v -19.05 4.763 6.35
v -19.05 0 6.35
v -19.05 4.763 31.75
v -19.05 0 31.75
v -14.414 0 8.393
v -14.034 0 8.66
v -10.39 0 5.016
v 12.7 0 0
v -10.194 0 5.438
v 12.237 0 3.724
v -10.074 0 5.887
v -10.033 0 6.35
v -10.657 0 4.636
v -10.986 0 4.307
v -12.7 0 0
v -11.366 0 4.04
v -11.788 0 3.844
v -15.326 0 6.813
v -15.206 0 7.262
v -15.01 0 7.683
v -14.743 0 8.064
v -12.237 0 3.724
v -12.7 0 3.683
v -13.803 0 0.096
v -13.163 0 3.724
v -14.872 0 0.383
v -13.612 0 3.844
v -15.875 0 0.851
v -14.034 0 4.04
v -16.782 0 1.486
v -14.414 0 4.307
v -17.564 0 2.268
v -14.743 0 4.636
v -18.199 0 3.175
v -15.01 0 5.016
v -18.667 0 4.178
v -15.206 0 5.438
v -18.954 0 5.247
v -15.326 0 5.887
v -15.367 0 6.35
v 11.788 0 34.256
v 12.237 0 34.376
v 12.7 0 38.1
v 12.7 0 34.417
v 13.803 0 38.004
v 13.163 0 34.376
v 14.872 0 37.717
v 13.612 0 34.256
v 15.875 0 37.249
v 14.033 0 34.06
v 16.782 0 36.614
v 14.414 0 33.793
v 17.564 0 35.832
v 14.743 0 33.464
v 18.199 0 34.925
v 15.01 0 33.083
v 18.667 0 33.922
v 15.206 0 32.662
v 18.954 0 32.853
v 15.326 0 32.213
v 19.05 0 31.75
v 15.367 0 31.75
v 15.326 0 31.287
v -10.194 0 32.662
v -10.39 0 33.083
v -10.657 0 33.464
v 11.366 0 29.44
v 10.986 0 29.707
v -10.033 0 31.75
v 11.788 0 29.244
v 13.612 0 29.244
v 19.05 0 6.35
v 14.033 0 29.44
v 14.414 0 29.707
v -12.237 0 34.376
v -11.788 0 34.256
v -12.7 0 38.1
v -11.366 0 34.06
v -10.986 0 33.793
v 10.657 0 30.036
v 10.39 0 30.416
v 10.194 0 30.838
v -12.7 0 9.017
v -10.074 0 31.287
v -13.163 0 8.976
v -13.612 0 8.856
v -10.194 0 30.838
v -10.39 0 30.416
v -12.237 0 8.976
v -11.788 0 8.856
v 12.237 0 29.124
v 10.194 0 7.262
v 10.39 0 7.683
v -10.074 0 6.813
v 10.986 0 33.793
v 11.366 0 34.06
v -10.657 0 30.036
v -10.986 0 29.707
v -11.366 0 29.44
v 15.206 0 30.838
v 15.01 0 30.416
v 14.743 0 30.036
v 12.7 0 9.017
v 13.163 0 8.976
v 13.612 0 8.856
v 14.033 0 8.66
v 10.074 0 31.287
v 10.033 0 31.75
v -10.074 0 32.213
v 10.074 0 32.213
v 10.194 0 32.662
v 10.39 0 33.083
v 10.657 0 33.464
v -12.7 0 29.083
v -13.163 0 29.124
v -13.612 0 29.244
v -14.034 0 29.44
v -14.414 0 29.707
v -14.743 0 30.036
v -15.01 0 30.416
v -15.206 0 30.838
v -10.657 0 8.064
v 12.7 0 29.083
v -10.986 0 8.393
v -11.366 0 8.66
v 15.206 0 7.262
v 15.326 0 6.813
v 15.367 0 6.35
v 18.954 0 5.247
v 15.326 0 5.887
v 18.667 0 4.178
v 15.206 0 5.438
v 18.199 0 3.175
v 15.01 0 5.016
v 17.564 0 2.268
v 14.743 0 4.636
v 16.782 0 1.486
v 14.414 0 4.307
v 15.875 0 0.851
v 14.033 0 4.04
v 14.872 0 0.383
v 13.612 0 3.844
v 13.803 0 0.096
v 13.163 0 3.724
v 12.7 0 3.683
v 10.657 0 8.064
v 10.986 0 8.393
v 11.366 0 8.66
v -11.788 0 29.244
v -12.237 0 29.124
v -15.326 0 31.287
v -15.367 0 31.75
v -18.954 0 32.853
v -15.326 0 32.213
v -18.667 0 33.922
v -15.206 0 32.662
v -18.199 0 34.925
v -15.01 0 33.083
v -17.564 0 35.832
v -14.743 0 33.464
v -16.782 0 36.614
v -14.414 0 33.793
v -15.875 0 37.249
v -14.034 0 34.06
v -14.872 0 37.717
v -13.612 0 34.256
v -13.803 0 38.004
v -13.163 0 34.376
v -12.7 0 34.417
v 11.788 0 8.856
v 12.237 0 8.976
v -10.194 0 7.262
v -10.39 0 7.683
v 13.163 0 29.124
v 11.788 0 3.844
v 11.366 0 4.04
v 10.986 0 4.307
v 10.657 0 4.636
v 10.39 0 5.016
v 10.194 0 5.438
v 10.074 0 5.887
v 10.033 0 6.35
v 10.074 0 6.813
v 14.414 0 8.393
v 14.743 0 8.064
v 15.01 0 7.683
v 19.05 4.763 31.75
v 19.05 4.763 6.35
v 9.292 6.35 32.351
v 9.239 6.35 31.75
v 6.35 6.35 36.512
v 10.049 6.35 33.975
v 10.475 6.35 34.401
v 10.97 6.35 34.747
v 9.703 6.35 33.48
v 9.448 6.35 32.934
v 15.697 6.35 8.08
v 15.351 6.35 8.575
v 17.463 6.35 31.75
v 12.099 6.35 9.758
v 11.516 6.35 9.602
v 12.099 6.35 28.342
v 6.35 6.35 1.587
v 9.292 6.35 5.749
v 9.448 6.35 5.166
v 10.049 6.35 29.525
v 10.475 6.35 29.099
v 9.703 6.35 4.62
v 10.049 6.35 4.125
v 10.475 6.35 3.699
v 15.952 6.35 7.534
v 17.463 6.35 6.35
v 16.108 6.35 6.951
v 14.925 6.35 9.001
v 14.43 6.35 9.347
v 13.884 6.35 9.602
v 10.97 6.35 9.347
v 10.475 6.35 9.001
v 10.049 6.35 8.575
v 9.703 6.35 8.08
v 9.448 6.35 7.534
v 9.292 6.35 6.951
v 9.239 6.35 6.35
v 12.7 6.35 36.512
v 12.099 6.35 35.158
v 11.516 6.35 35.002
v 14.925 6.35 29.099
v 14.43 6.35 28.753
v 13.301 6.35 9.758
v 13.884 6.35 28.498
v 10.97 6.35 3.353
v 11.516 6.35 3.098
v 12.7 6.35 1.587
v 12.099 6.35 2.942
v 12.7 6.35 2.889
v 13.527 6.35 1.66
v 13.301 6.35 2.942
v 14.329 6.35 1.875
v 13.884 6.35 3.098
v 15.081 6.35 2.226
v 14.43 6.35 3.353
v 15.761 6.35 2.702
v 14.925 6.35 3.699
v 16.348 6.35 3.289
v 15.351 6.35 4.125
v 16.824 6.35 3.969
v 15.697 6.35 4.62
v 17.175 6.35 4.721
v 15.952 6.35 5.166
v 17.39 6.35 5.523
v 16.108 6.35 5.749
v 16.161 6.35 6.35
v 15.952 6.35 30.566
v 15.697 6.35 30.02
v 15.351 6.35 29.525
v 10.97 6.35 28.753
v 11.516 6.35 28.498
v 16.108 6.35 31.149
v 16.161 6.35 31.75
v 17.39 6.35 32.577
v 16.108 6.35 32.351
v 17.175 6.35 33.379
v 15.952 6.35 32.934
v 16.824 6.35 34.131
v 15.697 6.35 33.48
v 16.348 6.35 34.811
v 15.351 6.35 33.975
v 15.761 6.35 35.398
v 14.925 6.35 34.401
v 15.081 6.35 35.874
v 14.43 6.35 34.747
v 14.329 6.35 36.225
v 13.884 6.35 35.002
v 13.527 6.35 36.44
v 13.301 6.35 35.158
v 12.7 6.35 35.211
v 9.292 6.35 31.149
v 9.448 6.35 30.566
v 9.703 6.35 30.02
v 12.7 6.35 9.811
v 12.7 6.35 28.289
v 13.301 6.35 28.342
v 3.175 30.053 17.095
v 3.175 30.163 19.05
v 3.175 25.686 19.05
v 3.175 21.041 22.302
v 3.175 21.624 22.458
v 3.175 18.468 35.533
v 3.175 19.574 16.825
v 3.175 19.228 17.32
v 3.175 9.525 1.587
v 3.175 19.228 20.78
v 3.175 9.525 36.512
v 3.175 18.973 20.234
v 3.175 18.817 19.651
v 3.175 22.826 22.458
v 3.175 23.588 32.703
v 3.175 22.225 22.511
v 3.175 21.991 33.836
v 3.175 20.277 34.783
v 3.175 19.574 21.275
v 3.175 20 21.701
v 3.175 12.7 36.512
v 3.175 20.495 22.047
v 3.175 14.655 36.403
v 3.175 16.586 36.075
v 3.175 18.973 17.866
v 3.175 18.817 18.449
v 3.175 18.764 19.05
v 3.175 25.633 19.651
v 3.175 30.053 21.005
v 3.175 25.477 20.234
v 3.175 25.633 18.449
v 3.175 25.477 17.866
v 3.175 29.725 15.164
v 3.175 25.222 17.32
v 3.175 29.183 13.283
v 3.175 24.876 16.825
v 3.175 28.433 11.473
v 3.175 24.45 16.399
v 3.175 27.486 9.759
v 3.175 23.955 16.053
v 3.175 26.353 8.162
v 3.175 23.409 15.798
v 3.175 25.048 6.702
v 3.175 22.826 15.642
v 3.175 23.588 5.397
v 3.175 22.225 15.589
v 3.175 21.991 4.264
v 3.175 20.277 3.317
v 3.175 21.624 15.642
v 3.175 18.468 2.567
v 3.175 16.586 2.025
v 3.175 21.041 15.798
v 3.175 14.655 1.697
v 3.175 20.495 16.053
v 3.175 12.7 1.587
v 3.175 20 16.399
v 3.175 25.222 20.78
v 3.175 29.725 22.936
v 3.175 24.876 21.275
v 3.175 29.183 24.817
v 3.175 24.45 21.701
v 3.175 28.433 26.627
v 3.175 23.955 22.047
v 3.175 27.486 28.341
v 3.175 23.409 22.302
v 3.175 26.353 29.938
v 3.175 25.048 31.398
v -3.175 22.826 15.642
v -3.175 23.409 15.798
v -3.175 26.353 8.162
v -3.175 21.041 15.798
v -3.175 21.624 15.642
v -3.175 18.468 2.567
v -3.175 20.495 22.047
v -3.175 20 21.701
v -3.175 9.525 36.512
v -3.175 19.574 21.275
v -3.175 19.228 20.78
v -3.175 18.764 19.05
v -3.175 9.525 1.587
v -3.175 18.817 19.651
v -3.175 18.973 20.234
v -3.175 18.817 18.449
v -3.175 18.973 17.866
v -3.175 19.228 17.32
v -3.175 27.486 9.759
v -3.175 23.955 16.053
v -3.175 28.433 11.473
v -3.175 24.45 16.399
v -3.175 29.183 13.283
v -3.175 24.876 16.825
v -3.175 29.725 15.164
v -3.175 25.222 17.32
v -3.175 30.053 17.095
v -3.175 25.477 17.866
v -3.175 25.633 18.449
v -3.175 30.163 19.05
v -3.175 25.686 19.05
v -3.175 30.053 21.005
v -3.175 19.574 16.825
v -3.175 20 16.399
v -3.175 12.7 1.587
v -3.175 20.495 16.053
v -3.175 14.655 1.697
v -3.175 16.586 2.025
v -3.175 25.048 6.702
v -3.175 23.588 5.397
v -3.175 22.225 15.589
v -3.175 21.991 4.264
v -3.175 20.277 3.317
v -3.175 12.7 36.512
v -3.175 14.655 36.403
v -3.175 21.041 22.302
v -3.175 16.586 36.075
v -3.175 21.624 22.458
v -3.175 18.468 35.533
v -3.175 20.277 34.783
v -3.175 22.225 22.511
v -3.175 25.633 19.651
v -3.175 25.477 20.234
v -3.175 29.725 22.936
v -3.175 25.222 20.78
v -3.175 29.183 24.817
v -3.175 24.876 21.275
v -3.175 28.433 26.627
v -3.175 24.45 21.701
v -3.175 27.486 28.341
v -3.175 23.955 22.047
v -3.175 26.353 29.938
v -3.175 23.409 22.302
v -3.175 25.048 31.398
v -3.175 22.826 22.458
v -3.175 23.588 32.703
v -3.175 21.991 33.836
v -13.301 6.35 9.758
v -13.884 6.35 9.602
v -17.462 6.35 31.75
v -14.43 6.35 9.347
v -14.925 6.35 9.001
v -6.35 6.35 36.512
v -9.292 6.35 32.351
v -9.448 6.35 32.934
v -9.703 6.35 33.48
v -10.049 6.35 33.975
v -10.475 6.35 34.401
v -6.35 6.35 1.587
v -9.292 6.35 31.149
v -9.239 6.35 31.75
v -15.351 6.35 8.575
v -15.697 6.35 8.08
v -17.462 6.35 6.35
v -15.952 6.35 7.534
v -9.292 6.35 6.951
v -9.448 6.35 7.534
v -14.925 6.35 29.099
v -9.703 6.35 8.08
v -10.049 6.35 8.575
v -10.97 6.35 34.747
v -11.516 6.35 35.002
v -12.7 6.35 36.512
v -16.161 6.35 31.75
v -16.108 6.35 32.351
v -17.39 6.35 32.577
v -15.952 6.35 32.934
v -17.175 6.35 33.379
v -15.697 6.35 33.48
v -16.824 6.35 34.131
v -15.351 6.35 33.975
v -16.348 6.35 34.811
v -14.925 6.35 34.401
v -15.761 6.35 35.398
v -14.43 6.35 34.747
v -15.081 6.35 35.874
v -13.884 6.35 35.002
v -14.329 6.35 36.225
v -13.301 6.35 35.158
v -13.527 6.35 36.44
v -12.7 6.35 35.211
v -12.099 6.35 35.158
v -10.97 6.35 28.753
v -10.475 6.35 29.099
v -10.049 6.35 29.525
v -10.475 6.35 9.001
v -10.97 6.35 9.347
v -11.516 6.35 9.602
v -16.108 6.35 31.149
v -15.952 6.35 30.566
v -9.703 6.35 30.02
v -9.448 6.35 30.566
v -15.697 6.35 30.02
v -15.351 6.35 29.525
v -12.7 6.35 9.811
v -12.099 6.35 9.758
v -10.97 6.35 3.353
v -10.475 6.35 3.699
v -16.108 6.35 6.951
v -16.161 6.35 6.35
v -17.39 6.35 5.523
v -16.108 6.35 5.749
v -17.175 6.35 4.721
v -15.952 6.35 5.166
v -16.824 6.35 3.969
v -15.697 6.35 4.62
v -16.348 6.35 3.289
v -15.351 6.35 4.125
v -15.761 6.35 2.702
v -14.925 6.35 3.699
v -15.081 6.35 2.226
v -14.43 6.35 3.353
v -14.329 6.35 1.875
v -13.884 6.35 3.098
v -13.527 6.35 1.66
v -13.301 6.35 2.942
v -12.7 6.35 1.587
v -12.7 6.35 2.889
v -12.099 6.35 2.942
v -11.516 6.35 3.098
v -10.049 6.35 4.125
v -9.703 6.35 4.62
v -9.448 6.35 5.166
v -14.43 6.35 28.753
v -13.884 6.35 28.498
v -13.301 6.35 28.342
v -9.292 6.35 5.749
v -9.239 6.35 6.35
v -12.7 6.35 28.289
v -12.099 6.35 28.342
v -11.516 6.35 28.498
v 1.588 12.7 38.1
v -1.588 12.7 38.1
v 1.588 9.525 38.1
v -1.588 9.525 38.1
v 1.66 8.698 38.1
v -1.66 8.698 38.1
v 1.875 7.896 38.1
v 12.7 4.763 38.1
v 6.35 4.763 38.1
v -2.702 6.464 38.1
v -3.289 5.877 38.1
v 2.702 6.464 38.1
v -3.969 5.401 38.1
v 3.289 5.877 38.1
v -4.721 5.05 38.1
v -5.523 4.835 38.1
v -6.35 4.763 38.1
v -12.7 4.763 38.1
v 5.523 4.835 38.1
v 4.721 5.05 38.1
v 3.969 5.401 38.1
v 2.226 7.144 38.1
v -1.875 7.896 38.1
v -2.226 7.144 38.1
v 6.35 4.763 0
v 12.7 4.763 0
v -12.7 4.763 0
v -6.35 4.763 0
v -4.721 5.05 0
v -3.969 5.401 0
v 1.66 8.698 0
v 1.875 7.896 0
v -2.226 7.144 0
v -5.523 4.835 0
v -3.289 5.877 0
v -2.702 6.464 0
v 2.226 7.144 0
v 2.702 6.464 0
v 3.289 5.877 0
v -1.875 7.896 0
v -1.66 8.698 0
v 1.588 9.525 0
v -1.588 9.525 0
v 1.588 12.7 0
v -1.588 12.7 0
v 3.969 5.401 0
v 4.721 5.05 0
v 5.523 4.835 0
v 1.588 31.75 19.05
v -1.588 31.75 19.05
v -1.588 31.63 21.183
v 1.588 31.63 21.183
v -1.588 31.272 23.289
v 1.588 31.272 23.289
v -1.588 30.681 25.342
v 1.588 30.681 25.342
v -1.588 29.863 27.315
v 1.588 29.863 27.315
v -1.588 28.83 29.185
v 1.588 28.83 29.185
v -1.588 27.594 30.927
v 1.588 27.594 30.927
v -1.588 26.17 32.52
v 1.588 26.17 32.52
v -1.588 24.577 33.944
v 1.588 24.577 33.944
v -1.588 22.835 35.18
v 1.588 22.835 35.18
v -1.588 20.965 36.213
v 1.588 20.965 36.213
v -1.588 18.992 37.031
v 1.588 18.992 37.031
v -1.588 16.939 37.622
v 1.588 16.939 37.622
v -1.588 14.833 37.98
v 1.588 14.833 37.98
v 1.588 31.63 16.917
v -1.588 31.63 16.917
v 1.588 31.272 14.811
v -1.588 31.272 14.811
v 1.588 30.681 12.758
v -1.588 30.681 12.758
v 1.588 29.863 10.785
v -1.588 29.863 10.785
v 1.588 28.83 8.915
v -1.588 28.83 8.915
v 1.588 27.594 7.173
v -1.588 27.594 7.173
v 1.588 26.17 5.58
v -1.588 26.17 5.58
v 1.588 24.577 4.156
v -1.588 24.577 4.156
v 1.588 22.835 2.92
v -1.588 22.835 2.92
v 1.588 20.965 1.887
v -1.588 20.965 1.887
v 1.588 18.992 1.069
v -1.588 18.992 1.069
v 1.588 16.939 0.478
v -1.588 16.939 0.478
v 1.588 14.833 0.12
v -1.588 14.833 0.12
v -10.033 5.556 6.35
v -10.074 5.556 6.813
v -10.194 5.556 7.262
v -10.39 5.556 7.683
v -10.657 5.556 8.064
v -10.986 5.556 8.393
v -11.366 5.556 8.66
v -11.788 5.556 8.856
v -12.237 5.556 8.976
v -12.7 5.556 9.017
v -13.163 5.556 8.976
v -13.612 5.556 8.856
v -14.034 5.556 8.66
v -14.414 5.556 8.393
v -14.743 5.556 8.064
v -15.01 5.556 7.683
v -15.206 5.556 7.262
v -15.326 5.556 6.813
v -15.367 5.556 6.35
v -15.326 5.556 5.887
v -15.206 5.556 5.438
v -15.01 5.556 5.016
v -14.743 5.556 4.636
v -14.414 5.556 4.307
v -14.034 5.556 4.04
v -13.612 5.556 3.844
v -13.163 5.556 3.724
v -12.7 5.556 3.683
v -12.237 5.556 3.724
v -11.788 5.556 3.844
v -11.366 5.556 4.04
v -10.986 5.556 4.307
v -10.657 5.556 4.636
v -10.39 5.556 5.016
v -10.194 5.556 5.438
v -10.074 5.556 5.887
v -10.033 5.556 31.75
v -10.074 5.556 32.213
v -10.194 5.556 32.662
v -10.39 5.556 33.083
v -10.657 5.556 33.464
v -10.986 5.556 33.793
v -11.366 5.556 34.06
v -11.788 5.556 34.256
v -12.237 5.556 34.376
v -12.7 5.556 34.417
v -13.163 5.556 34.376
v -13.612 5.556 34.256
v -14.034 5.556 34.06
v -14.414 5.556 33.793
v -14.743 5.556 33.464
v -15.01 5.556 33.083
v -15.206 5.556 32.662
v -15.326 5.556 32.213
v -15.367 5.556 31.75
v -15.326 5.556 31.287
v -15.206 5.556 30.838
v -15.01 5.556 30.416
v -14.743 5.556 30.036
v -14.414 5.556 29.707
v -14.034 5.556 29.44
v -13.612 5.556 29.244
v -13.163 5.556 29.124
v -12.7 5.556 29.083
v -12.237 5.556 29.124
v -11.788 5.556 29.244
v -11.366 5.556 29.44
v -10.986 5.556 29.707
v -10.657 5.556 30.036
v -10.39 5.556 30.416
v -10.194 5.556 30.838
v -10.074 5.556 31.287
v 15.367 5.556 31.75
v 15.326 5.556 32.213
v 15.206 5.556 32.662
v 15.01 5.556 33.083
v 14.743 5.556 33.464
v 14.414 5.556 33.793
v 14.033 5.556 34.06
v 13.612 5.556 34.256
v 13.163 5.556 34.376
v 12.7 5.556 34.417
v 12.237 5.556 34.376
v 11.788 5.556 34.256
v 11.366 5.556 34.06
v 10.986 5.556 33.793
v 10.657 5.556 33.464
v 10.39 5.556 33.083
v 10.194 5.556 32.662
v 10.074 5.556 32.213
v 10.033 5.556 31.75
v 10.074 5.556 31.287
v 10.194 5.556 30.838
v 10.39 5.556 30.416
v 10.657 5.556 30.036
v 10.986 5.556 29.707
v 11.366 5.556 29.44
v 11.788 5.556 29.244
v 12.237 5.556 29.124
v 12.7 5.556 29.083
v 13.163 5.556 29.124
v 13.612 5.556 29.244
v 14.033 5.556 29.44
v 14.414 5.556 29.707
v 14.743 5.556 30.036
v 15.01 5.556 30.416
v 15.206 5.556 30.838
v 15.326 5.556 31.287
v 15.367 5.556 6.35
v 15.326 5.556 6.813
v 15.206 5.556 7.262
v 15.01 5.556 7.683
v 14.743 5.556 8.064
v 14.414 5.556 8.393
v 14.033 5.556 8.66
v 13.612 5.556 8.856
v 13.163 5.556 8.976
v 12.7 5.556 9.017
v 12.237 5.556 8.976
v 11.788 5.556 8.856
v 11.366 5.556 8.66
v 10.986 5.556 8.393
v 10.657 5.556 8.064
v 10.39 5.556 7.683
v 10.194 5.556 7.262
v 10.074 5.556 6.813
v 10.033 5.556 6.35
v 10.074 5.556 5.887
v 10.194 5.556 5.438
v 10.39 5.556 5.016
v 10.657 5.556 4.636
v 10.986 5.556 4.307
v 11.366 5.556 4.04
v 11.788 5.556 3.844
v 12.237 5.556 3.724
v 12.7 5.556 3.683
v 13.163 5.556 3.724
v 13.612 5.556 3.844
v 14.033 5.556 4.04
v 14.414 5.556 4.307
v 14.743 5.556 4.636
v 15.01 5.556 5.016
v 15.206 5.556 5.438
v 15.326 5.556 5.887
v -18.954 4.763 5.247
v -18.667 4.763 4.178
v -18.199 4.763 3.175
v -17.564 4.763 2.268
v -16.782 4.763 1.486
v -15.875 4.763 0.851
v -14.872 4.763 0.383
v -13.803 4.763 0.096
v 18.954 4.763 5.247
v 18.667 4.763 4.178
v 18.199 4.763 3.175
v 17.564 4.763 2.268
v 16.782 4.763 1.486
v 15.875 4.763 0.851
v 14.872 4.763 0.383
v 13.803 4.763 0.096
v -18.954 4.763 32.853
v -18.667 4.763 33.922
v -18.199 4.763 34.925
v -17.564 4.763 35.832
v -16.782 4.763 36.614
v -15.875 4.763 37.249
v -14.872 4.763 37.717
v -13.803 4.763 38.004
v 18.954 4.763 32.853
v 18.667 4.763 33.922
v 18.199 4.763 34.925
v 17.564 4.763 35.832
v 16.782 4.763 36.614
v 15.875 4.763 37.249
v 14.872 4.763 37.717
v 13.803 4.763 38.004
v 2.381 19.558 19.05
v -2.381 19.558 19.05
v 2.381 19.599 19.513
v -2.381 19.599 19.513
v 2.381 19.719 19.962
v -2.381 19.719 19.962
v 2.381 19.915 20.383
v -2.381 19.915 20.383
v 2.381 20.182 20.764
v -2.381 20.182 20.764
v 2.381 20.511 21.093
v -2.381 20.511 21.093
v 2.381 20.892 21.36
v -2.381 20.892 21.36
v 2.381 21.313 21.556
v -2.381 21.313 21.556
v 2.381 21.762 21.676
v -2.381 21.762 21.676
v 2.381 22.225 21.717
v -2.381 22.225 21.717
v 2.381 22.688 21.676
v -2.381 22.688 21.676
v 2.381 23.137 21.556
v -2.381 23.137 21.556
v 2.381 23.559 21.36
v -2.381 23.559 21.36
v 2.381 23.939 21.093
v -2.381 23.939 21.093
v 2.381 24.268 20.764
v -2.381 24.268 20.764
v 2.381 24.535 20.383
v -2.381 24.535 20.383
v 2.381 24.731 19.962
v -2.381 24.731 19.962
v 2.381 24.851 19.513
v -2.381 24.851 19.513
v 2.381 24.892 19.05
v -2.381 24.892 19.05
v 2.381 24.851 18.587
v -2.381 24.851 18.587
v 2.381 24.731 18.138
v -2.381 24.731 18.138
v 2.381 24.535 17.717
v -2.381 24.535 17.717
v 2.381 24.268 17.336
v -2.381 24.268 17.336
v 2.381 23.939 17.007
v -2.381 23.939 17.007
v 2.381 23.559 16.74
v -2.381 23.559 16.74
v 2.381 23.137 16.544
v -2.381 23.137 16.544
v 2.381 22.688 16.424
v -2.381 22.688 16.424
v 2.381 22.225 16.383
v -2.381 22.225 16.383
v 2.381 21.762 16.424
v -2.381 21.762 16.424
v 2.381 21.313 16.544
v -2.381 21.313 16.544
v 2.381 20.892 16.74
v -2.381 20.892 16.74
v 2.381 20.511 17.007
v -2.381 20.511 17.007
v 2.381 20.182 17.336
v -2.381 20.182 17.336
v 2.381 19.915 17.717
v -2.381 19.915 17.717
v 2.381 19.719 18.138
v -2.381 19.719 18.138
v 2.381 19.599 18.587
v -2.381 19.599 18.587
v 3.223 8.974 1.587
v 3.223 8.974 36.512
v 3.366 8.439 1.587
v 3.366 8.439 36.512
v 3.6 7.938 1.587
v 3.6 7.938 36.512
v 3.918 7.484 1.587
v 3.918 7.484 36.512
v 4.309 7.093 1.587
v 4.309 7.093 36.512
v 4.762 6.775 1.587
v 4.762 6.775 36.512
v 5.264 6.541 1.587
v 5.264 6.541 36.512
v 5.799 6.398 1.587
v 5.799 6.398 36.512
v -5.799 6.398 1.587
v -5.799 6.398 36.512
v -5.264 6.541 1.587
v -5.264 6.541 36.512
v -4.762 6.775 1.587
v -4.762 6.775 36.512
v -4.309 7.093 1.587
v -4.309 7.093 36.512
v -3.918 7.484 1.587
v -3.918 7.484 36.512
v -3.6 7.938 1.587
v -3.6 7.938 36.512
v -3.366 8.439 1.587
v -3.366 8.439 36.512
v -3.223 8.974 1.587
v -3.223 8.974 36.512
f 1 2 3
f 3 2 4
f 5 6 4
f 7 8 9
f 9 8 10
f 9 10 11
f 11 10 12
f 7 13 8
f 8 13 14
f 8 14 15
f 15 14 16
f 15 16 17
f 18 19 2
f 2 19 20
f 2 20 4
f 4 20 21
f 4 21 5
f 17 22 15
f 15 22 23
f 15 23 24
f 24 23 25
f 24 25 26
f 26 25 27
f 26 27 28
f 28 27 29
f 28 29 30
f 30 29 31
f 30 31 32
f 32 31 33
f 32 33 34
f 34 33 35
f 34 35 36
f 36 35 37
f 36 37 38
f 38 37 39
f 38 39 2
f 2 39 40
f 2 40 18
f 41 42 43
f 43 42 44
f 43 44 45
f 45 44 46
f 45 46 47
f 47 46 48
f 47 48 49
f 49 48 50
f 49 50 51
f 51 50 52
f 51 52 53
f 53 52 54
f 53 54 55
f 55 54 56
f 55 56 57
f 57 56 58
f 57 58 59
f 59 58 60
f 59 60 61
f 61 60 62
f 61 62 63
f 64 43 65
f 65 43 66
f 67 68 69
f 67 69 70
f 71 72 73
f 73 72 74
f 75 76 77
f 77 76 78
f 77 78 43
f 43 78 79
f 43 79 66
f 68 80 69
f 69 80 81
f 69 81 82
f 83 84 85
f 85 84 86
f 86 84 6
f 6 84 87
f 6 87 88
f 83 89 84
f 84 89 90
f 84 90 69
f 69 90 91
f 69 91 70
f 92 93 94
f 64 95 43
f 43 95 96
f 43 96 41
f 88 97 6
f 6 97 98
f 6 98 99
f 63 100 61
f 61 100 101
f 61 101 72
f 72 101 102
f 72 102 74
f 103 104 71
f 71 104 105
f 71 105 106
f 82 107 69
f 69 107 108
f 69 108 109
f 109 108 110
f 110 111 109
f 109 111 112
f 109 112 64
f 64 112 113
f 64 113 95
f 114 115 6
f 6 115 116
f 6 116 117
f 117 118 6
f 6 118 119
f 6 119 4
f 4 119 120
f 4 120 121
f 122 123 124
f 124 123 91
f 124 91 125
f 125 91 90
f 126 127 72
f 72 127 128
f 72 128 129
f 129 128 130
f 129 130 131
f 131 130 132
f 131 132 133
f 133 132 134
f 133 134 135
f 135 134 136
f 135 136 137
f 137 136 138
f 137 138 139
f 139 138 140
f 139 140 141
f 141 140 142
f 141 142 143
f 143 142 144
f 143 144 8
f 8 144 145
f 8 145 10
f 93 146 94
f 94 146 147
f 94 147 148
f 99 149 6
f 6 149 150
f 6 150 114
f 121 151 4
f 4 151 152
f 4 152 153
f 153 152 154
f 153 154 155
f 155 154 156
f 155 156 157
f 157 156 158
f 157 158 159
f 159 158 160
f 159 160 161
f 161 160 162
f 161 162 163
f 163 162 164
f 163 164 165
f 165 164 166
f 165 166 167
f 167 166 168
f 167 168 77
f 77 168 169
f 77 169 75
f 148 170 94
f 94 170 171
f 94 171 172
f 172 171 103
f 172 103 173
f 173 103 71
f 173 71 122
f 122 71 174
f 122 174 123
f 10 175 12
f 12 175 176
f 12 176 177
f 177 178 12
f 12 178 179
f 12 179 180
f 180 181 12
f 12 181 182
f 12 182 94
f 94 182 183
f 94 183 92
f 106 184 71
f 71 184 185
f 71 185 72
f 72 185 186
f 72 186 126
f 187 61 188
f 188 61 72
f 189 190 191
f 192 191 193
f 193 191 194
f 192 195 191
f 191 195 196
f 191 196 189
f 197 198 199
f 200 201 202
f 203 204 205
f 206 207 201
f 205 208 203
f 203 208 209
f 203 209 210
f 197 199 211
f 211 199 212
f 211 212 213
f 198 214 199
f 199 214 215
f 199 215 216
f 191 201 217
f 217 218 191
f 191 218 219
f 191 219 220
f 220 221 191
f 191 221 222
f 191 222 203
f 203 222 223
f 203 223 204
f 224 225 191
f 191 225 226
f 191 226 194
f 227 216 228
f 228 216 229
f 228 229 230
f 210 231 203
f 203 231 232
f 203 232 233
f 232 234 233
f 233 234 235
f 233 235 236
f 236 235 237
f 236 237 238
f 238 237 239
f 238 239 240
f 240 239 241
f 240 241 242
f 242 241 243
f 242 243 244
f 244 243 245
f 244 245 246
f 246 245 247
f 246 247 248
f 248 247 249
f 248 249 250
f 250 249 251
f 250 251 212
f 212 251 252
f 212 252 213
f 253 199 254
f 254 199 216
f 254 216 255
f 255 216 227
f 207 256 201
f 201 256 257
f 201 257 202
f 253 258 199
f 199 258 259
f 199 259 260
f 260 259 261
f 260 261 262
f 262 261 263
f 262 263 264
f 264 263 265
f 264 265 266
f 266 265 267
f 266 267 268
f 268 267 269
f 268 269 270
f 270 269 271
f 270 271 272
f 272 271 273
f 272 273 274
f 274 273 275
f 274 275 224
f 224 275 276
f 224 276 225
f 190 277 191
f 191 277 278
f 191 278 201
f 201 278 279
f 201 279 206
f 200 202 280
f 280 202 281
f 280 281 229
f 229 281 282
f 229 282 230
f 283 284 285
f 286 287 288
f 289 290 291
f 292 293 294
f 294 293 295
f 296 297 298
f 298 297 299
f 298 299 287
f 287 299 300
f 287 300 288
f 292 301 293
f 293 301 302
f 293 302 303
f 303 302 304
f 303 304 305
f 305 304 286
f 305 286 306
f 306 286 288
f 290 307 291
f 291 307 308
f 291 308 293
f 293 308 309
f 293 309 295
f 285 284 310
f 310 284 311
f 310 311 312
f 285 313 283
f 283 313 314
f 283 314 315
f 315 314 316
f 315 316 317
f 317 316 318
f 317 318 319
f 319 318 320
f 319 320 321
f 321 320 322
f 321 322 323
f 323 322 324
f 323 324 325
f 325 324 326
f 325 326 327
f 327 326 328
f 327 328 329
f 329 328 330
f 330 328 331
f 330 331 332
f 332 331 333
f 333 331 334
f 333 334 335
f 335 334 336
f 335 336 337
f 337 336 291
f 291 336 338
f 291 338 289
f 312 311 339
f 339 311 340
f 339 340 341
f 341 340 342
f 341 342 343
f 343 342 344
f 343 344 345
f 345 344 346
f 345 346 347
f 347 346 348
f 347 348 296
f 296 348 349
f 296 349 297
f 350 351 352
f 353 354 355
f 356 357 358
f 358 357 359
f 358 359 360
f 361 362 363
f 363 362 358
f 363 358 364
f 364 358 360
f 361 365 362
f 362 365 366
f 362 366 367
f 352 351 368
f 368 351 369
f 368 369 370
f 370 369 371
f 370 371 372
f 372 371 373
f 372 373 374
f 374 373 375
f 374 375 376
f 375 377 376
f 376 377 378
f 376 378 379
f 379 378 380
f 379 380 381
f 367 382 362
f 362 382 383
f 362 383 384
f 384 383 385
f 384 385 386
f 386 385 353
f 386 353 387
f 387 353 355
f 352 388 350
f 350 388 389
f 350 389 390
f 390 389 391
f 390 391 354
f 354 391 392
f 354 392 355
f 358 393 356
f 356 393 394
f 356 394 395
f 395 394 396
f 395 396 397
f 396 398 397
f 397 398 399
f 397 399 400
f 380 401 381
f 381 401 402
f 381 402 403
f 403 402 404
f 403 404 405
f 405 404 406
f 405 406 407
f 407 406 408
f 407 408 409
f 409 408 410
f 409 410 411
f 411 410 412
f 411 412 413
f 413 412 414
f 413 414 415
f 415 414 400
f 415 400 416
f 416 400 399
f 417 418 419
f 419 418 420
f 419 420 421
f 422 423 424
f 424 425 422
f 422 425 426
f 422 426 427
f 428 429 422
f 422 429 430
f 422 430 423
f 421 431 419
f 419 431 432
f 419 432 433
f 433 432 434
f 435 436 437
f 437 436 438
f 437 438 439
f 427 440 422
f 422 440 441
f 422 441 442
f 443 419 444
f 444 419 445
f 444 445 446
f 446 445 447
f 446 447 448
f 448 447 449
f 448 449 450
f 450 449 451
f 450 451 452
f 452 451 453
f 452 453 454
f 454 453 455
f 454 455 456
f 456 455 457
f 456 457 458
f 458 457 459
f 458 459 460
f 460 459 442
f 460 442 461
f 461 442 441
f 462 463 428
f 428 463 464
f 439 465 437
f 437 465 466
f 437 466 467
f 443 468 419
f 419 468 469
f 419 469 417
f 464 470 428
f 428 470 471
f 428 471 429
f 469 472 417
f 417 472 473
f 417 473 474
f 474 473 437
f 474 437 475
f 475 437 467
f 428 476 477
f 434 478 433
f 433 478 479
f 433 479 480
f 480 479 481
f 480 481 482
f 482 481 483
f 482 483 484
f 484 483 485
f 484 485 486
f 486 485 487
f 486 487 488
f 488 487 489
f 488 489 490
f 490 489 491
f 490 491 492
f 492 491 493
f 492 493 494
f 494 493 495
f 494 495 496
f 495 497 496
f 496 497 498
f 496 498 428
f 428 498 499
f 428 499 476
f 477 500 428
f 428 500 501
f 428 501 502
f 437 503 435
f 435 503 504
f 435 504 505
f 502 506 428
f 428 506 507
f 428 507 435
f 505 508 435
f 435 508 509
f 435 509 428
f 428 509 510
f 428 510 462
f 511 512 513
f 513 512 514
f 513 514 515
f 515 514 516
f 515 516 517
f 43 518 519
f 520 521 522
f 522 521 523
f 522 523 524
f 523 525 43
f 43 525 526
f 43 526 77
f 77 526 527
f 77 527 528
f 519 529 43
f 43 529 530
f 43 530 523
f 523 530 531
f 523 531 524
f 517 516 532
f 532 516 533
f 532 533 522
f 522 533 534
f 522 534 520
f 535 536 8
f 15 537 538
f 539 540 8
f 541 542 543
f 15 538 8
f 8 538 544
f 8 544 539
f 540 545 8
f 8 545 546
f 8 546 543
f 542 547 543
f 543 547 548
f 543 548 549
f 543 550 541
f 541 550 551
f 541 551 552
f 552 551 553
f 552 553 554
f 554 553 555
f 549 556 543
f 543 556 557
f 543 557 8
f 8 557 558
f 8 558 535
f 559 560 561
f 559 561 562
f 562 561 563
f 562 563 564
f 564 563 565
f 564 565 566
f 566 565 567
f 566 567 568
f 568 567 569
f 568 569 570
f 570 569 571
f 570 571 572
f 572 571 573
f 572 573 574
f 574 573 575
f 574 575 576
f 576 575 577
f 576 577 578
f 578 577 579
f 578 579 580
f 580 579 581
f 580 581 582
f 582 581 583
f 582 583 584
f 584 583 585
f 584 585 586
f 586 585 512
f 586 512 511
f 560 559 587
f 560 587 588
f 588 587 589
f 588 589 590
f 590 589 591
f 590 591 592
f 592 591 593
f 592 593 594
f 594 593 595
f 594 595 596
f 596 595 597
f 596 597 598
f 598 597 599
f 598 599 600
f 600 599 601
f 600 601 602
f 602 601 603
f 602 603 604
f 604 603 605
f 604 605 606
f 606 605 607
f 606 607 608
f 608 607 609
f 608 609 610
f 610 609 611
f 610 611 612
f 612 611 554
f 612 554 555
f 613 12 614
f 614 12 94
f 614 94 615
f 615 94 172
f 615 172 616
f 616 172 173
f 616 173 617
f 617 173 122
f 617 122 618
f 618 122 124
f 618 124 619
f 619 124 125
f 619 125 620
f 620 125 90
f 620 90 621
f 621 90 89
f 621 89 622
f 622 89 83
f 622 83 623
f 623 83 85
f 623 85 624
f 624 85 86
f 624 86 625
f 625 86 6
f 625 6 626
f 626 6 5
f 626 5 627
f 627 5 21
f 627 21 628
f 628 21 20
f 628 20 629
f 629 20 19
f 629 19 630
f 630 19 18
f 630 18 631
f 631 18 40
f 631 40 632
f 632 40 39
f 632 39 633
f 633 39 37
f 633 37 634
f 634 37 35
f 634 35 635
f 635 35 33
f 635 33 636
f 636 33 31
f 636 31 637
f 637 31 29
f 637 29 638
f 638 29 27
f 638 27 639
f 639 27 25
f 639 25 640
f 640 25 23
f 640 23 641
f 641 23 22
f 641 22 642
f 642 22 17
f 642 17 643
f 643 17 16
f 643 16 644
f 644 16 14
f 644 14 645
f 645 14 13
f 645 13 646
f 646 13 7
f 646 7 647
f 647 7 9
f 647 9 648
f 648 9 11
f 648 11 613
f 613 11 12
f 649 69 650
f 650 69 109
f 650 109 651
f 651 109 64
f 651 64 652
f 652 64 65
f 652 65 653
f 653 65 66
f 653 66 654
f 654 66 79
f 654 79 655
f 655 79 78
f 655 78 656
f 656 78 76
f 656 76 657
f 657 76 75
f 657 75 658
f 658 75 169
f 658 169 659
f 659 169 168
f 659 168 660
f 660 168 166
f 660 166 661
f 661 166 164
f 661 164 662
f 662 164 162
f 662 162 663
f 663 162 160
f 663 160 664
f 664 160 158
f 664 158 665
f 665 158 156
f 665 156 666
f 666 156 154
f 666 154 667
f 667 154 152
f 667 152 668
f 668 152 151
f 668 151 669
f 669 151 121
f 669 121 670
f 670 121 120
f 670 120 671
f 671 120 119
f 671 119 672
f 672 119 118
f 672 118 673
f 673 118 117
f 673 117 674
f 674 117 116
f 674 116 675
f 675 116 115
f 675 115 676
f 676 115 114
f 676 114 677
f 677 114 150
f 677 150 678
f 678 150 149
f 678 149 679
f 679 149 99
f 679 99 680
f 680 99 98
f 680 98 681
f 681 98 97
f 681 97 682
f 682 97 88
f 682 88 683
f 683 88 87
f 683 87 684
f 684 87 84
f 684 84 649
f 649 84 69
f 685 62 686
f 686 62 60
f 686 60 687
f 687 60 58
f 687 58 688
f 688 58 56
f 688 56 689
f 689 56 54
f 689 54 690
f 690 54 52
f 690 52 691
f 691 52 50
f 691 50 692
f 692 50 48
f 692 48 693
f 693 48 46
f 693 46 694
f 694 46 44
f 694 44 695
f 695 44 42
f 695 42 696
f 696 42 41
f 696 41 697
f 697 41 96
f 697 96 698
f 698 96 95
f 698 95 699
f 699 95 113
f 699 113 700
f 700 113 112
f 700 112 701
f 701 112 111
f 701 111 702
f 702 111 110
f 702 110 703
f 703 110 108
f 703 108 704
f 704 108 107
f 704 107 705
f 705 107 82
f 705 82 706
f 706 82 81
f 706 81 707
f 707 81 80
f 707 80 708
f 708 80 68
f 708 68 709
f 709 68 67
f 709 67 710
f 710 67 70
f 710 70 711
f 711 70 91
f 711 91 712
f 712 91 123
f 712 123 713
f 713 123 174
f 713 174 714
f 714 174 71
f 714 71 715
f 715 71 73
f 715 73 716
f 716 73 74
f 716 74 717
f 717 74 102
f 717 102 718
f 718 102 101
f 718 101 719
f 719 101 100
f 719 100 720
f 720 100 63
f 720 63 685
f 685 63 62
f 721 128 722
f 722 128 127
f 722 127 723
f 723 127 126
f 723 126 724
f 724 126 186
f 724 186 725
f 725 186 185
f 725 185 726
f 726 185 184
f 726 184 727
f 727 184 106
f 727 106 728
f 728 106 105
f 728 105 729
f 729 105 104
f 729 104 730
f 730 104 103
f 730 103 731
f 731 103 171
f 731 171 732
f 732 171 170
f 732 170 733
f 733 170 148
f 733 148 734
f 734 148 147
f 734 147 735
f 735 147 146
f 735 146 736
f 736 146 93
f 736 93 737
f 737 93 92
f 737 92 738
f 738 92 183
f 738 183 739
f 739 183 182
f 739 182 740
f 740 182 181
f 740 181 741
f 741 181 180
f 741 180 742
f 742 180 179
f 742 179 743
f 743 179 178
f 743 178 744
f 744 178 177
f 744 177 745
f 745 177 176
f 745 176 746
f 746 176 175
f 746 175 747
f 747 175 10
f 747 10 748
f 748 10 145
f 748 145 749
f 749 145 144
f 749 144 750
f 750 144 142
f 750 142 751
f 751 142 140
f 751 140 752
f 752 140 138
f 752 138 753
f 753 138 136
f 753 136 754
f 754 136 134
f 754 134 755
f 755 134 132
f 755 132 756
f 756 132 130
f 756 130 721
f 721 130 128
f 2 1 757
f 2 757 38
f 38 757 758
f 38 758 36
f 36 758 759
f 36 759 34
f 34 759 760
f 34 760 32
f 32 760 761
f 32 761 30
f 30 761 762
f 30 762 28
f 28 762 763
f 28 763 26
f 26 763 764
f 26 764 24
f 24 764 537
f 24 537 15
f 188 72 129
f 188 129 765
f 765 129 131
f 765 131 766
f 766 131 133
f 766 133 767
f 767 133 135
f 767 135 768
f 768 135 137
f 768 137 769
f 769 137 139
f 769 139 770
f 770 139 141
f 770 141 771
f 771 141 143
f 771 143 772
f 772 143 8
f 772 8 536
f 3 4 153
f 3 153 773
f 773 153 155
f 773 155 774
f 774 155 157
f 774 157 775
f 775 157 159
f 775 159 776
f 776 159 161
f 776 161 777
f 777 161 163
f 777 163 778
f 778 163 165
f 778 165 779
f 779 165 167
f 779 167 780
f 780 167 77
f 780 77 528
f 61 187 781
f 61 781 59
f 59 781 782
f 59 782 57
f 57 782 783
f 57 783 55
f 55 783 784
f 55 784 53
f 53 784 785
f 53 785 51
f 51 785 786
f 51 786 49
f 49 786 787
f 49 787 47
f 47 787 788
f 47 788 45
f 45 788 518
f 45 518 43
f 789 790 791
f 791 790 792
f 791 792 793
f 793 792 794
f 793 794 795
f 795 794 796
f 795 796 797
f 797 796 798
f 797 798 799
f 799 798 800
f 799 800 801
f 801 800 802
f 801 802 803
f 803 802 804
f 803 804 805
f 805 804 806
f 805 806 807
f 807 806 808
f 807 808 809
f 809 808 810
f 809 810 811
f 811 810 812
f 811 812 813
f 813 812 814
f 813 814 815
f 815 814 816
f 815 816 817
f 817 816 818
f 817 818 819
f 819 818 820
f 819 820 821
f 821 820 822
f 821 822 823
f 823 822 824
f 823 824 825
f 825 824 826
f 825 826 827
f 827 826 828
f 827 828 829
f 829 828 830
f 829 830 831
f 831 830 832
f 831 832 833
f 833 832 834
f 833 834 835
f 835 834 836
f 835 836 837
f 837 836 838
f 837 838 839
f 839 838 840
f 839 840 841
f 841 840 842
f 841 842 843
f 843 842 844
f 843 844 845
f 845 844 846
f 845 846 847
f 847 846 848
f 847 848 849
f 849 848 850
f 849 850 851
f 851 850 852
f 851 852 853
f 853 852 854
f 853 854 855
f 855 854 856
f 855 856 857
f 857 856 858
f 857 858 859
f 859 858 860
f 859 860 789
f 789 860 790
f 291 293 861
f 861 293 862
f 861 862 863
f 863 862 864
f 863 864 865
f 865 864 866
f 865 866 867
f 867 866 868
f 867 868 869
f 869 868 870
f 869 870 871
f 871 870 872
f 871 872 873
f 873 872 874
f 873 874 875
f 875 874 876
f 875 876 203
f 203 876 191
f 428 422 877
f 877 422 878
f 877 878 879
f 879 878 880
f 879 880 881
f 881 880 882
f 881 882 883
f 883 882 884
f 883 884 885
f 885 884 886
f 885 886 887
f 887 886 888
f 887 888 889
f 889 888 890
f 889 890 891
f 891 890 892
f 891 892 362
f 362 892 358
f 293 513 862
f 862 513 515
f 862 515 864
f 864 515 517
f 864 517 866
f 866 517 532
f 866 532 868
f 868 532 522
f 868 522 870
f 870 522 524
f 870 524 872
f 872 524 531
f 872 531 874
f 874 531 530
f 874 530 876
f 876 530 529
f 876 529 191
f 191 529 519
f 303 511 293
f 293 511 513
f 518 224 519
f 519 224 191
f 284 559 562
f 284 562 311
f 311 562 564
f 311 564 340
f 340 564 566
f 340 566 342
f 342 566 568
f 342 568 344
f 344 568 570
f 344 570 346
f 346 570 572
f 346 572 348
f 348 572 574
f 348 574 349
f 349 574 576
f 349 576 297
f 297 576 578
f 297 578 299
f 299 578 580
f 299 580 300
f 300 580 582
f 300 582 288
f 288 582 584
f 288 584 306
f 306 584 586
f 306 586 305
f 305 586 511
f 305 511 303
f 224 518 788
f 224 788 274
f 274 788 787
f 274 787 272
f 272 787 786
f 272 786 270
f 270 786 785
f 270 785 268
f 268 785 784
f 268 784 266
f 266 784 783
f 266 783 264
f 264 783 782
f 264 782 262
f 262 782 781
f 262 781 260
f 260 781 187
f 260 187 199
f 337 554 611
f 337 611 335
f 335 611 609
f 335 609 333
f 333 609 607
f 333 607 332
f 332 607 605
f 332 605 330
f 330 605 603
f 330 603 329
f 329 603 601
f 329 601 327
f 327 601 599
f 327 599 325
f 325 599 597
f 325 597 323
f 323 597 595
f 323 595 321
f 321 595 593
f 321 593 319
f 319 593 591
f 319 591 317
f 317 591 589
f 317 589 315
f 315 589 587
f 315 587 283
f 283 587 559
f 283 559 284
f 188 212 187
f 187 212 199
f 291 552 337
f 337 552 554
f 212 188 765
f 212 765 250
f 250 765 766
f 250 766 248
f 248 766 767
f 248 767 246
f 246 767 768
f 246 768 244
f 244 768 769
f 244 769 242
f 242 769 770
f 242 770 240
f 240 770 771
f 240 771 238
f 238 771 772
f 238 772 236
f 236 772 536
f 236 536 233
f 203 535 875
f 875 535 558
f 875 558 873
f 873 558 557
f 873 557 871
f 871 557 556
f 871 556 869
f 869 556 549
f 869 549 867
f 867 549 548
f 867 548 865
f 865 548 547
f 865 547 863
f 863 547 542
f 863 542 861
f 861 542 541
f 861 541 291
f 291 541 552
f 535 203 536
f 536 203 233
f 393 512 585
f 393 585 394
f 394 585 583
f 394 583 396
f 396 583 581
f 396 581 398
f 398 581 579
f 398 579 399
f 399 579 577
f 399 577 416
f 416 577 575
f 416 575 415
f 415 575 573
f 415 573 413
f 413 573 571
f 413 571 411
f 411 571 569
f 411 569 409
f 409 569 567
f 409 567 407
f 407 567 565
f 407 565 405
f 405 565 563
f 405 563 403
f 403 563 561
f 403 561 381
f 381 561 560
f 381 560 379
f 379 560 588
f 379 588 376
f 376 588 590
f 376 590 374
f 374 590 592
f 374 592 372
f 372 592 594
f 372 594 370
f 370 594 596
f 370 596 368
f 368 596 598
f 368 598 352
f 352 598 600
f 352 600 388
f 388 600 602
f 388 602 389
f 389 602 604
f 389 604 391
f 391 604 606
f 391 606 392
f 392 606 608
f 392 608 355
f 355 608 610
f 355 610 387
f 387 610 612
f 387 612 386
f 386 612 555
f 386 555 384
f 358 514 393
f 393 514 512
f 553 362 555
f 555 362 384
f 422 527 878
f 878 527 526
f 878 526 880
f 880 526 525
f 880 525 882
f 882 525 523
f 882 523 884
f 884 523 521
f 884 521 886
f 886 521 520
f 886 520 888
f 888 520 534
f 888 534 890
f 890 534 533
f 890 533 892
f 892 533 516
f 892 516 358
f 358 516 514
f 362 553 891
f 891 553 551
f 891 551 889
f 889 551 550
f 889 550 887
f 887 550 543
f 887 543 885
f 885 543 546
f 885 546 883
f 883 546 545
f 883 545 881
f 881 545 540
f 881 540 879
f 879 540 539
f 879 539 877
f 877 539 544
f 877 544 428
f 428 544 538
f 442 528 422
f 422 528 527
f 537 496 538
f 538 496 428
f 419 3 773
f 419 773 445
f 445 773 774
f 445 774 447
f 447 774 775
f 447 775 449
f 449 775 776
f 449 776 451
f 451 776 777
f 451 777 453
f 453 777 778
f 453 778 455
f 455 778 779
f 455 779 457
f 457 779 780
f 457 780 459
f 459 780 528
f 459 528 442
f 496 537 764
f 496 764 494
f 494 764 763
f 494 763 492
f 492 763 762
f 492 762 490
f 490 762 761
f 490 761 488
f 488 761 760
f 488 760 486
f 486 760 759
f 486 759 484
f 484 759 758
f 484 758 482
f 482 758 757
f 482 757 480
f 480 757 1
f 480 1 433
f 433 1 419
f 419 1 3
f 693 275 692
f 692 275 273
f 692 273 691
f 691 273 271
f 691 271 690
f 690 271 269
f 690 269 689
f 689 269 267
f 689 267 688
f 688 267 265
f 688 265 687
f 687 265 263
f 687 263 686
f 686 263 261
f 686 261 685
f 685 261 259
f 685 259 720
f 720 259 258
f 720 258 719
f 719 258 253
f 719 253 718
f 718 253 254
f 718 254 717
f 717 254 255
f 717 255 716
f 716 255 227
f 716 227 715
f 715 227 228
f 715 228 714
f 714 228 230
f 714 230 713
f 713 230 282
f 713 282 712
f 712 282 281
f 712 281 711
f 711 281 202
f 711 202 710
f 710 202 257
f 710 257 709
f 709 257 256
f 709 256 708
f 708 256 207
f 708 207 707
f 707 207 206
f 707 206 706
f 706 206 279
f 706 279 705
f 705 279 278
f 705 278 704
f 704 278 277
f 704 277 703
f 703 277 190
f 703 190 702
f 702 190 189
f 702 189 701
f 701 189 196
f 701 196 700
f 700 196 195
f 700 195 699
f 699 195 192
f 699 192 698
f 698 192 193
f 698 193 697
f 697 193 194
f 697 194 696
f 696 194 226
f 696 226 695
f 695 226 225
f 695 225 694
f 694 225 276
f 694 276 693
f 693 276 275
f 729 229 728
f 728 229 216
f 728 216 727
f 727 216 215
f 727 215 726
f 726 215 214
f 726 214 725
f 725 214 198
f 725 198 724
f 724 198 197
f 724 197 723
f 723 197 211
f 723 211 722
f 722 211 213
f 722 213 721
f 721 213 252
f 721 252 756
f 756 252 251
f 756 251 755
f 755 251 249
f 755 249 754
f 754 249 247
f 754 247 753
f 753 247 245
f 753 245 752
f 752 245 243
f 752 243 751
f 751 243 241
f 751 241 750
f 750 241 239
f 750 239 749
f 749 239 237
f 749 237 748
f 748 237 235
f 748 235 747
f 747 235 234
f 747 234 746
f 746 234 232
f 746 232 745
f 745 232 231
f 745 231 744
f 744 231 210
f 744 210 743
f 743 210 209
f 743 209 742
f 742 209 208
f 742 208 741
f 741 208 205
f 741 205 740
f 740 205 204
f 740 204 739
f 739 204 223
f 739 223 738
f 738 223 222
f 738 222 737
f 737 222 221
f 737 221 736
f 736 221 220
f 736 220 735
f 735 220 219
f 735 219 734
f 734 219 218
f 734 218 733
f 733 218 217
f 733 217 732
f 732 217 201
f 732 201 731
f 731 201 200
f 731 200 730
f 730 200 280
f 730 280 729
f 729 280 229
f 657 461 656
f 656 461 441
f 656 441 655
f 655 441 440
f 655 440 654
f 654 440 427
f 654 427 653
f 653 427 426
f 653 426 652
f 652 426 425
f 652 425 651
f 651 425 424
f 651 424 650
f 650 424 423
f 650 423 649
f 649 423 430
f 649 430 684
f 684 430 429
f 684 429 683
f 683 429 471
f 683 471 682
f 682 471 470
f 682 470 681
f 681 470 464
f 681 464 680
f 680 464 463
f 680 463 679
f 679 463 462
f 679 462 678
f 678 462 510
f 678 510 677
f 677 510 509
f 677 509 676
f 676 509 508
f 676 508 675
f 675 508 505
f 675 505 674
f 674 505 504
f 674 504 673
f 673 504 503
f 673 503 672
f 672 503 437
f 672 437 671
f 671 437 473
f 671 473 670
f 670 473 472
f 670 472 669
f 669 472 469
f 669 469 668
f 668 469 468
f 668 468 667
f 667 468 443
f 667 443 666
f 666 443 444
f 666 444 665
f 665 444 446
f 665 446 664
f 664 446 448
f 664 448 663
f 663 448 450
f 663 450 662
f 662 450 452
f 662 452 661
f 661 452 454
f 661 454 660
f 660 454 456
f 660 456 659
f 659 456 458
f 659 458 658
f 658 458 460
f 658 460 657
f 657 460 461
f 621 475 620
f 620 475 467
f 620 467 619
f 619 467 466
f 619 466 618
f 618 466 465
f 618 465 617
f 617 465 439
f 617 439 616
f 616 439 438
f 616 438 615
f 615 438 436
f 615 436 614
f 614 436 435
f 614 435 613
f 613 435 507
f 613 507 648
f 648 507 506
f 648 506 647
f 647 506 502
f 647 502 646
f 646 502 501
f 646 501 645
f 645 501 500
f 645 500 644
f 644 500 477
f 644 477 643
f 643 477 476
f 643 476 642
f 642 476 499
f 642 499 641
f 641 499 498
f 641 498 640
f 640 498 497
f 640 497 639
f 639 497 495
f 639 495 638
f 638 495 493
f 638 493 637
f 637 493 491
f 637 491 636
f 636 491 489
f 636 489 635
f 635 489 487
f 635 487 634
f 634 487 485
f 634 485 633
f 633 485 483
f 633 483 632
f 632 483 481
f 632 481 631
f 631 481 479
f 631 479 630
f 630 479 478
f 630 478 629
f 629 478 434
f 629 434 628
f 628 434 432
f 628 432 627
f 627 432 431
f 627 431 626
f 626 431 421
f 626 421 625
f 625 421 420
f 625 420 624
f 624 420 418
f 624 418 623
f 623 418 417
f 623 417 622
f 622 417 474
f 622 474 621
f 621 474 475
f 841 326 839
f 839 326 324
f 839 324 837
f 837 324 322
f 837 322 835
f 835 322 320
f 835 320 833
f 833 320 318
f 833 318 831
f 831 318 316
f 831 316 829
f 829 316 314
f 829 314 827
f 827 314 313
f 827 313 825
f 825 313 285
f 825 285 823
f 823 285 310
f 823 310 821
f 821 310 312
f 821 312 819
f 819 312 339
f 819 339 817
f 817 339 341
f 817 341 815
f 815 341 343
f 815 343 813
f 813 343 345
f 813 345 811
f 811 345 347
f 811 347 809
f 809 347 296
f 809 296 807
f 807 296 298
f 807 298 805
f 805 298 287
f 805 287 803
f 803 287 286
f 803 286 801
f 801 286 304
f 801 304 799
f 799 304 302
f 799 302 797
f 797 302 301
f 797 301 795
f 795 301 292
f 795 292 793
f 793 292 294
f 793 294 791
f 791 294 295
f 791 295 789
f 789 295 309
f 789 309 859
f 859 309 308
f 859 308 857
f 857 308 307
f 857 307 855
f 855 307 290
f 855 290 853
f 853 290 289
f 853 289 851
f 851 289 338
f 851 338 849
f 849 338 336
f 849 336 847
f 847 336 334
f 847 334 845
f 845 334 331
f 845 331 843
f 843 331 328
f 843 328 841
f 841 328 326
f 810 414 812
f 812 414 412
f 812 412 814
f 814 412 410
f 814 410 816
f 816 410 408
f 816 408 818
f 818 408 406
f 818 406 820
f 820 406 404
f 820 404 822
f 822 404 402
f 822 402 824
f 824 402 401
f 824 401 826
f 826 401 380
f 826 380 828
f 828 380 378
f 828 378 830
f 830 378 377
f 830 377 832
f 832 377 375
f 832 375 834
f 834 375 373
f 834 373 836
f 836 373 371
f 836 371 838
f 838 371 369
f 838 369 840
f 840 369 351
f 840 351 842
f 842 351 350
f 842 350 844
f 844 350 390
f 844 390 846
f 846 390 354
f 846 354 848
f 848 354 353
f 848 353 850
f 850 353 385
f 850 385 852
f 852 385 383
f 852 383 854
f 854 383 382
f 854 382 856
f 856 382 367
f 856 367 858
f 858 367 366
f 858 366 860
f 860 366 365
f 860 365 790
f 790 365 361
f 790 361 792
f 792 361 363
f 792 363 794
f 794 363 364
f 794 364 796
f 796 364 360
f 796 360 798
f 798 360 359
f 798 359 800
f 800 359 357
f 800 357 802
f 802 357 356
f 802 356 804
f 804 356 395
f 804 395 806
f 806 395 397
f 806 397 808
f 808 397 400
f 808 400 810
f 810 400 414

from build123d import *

# Parameters (mm, degrees)
BOSS_EXTRUDE1_DEPTH = 38.1
FILLET1_R           = 19.05
SKETCH2_R           = 2.667
CUT_EXTRUDE1_DEPTH  = 54.127911685
FILLET2_R           = 6.35
SKETCH3_R           = 2.667
CUT_EXTRUDE2_DEPTH  = 55.34724579
FILLET3_R           = 3.175
CHAMFER1_SIZE       = 1.5875
CHAMFER2_SIZE       = 0.79375


with BuildPart() as part:
    # Sketch1 → Boss-Extrude1 (new body)
    with BuildSketch(Plane.XY):
        Polygon((-3.175, 31.75), (3.175, 31.75), (3.175, 6.35), (19.05, 6.35), (19.05, 0), (-19.05, 0), (-19.05, 6.35), (-3.175, 6.35), align=None)
    extrude(amount=BOSS_EXTRUDE1_DEPTH)

    # Fillet1
    fillet1_edges = [part.edges().sort_by_distance(p)[0] for p in [
        (0, 31.75, 0),
        (0, 31.75, 38.1),
    ]]
    fillet(fillet1_edges, radius=FILLET1_R - 0.0001)  # a hair under: the kernel refuses the full size

    # Sketch2 → Cut-Extrude1 (cut, through all)
    with BuildSketch(Plane.XZ):
        with Locations((12.7, 31.75)):
            Circle(SKETCH2_R)
        with Locations((12.7, 6.35)):
            Circle(SKETCH2_R)
        with Locations((-12.7, 6.35)):
            Circle(SKETCH2_R)
        with Locations((-12.7, 31.75)):
            Circle(SKETCH2_R)
    extrude(amount=-CUT_EXTRUDE1_DEPTH, mode=Mode.SUBTRACT)

    # Fillet2
    fillet2_edges = [part.edges().sort_by_distance(p)[0] for p in [
        (19.05, 3.175, 0),
        (-19.05, 3.175, 0),
        (19.05, 3.175, 38.1),
        (-19.05, 3.175, 38.1),
    ]]
    fillet(fillet2_edges, radius=FILLET2_R)

    # Sketch3 → Cut-Extrude2 (cut, through all)
    with BuildSketch(Plane.ZY.offset(3.175)):
        with Locations(Location((19.05, 22.225, 0), (0, 0, 270))):
            Circle(SKETCH3_R)
    extrude(amount=-CUT_EXTRUDE2_DEPTH, mode=Mode.SUBTRACT)

    # Fillet3
    fillet3_edges = [part.edges().sort_by_distance(p)[0] for p in [
        (-3.175, 6.35, 19.05),
        (3.175, 6.35, 19.05),
    ]]
    fillet(fillet3_edges, radius=FILLET3_R)

    # Chamfer1
    chamfer1_edges = [part.edges().sort_by_distance(p)[0] for p in [
        (-3.175, 11.11255, 0),
        (-3.175, 11.11255, 38.1),
        (-3.175, 26.170413471, 32.520413471),
        (-3.175, 26.170413471, 5.579586529),
        (3.175, 26.170413471, 32.520413471),
        (3.175, 26.170413471, 5.579586529),
        (-19.05, 6.35, 19.05),
        (9.525, 6.35, 0),
        (-17.190128061, 6.35, 36.240128061),
        (-17.190128061, 6.35, 1.859871939),
        (19.05, 6.35, 19.05),
        (9.525, 6.35, 38.1),
        (17.190128061, 6.35, 36.240128061),
        (17.190128061, 6.35, 1.859871939),
        (3.175, 11.11255, 0),
        (3.175, 11.11255, 38.1),
        (-9.525, 6.35, 0),
        (-9.525, 6.35, 38.1),
        (4.10493597, 7.27993597, 0),
        (4.10493597, 7.27993597, 38.1),
        (-4.10493597, 7.27993597, 0),
        (-4.10493597, 7.27993597, 38.1),
    ]]
    chamfer(chamfer1_edges, length=CHAMFER1_SIZE)

    # Chamfer2
    chamfer2_edges = [part.edges().sort_by_distance(p)[0] for p in [
        (-15.367, 6.35, 31.75),
        (-15.367, 6.35, 6.35),
        (10.033, 6.35, 6.35),
        (10.033, 6.35, 31.75),
        (3.175, 24.892, 19.05),
        (-3.175, 24.892, 19.05),
    ]]
    chamfer(chamfer2_edges, length=CHAMFER2_SIZE)


solid = part.part
